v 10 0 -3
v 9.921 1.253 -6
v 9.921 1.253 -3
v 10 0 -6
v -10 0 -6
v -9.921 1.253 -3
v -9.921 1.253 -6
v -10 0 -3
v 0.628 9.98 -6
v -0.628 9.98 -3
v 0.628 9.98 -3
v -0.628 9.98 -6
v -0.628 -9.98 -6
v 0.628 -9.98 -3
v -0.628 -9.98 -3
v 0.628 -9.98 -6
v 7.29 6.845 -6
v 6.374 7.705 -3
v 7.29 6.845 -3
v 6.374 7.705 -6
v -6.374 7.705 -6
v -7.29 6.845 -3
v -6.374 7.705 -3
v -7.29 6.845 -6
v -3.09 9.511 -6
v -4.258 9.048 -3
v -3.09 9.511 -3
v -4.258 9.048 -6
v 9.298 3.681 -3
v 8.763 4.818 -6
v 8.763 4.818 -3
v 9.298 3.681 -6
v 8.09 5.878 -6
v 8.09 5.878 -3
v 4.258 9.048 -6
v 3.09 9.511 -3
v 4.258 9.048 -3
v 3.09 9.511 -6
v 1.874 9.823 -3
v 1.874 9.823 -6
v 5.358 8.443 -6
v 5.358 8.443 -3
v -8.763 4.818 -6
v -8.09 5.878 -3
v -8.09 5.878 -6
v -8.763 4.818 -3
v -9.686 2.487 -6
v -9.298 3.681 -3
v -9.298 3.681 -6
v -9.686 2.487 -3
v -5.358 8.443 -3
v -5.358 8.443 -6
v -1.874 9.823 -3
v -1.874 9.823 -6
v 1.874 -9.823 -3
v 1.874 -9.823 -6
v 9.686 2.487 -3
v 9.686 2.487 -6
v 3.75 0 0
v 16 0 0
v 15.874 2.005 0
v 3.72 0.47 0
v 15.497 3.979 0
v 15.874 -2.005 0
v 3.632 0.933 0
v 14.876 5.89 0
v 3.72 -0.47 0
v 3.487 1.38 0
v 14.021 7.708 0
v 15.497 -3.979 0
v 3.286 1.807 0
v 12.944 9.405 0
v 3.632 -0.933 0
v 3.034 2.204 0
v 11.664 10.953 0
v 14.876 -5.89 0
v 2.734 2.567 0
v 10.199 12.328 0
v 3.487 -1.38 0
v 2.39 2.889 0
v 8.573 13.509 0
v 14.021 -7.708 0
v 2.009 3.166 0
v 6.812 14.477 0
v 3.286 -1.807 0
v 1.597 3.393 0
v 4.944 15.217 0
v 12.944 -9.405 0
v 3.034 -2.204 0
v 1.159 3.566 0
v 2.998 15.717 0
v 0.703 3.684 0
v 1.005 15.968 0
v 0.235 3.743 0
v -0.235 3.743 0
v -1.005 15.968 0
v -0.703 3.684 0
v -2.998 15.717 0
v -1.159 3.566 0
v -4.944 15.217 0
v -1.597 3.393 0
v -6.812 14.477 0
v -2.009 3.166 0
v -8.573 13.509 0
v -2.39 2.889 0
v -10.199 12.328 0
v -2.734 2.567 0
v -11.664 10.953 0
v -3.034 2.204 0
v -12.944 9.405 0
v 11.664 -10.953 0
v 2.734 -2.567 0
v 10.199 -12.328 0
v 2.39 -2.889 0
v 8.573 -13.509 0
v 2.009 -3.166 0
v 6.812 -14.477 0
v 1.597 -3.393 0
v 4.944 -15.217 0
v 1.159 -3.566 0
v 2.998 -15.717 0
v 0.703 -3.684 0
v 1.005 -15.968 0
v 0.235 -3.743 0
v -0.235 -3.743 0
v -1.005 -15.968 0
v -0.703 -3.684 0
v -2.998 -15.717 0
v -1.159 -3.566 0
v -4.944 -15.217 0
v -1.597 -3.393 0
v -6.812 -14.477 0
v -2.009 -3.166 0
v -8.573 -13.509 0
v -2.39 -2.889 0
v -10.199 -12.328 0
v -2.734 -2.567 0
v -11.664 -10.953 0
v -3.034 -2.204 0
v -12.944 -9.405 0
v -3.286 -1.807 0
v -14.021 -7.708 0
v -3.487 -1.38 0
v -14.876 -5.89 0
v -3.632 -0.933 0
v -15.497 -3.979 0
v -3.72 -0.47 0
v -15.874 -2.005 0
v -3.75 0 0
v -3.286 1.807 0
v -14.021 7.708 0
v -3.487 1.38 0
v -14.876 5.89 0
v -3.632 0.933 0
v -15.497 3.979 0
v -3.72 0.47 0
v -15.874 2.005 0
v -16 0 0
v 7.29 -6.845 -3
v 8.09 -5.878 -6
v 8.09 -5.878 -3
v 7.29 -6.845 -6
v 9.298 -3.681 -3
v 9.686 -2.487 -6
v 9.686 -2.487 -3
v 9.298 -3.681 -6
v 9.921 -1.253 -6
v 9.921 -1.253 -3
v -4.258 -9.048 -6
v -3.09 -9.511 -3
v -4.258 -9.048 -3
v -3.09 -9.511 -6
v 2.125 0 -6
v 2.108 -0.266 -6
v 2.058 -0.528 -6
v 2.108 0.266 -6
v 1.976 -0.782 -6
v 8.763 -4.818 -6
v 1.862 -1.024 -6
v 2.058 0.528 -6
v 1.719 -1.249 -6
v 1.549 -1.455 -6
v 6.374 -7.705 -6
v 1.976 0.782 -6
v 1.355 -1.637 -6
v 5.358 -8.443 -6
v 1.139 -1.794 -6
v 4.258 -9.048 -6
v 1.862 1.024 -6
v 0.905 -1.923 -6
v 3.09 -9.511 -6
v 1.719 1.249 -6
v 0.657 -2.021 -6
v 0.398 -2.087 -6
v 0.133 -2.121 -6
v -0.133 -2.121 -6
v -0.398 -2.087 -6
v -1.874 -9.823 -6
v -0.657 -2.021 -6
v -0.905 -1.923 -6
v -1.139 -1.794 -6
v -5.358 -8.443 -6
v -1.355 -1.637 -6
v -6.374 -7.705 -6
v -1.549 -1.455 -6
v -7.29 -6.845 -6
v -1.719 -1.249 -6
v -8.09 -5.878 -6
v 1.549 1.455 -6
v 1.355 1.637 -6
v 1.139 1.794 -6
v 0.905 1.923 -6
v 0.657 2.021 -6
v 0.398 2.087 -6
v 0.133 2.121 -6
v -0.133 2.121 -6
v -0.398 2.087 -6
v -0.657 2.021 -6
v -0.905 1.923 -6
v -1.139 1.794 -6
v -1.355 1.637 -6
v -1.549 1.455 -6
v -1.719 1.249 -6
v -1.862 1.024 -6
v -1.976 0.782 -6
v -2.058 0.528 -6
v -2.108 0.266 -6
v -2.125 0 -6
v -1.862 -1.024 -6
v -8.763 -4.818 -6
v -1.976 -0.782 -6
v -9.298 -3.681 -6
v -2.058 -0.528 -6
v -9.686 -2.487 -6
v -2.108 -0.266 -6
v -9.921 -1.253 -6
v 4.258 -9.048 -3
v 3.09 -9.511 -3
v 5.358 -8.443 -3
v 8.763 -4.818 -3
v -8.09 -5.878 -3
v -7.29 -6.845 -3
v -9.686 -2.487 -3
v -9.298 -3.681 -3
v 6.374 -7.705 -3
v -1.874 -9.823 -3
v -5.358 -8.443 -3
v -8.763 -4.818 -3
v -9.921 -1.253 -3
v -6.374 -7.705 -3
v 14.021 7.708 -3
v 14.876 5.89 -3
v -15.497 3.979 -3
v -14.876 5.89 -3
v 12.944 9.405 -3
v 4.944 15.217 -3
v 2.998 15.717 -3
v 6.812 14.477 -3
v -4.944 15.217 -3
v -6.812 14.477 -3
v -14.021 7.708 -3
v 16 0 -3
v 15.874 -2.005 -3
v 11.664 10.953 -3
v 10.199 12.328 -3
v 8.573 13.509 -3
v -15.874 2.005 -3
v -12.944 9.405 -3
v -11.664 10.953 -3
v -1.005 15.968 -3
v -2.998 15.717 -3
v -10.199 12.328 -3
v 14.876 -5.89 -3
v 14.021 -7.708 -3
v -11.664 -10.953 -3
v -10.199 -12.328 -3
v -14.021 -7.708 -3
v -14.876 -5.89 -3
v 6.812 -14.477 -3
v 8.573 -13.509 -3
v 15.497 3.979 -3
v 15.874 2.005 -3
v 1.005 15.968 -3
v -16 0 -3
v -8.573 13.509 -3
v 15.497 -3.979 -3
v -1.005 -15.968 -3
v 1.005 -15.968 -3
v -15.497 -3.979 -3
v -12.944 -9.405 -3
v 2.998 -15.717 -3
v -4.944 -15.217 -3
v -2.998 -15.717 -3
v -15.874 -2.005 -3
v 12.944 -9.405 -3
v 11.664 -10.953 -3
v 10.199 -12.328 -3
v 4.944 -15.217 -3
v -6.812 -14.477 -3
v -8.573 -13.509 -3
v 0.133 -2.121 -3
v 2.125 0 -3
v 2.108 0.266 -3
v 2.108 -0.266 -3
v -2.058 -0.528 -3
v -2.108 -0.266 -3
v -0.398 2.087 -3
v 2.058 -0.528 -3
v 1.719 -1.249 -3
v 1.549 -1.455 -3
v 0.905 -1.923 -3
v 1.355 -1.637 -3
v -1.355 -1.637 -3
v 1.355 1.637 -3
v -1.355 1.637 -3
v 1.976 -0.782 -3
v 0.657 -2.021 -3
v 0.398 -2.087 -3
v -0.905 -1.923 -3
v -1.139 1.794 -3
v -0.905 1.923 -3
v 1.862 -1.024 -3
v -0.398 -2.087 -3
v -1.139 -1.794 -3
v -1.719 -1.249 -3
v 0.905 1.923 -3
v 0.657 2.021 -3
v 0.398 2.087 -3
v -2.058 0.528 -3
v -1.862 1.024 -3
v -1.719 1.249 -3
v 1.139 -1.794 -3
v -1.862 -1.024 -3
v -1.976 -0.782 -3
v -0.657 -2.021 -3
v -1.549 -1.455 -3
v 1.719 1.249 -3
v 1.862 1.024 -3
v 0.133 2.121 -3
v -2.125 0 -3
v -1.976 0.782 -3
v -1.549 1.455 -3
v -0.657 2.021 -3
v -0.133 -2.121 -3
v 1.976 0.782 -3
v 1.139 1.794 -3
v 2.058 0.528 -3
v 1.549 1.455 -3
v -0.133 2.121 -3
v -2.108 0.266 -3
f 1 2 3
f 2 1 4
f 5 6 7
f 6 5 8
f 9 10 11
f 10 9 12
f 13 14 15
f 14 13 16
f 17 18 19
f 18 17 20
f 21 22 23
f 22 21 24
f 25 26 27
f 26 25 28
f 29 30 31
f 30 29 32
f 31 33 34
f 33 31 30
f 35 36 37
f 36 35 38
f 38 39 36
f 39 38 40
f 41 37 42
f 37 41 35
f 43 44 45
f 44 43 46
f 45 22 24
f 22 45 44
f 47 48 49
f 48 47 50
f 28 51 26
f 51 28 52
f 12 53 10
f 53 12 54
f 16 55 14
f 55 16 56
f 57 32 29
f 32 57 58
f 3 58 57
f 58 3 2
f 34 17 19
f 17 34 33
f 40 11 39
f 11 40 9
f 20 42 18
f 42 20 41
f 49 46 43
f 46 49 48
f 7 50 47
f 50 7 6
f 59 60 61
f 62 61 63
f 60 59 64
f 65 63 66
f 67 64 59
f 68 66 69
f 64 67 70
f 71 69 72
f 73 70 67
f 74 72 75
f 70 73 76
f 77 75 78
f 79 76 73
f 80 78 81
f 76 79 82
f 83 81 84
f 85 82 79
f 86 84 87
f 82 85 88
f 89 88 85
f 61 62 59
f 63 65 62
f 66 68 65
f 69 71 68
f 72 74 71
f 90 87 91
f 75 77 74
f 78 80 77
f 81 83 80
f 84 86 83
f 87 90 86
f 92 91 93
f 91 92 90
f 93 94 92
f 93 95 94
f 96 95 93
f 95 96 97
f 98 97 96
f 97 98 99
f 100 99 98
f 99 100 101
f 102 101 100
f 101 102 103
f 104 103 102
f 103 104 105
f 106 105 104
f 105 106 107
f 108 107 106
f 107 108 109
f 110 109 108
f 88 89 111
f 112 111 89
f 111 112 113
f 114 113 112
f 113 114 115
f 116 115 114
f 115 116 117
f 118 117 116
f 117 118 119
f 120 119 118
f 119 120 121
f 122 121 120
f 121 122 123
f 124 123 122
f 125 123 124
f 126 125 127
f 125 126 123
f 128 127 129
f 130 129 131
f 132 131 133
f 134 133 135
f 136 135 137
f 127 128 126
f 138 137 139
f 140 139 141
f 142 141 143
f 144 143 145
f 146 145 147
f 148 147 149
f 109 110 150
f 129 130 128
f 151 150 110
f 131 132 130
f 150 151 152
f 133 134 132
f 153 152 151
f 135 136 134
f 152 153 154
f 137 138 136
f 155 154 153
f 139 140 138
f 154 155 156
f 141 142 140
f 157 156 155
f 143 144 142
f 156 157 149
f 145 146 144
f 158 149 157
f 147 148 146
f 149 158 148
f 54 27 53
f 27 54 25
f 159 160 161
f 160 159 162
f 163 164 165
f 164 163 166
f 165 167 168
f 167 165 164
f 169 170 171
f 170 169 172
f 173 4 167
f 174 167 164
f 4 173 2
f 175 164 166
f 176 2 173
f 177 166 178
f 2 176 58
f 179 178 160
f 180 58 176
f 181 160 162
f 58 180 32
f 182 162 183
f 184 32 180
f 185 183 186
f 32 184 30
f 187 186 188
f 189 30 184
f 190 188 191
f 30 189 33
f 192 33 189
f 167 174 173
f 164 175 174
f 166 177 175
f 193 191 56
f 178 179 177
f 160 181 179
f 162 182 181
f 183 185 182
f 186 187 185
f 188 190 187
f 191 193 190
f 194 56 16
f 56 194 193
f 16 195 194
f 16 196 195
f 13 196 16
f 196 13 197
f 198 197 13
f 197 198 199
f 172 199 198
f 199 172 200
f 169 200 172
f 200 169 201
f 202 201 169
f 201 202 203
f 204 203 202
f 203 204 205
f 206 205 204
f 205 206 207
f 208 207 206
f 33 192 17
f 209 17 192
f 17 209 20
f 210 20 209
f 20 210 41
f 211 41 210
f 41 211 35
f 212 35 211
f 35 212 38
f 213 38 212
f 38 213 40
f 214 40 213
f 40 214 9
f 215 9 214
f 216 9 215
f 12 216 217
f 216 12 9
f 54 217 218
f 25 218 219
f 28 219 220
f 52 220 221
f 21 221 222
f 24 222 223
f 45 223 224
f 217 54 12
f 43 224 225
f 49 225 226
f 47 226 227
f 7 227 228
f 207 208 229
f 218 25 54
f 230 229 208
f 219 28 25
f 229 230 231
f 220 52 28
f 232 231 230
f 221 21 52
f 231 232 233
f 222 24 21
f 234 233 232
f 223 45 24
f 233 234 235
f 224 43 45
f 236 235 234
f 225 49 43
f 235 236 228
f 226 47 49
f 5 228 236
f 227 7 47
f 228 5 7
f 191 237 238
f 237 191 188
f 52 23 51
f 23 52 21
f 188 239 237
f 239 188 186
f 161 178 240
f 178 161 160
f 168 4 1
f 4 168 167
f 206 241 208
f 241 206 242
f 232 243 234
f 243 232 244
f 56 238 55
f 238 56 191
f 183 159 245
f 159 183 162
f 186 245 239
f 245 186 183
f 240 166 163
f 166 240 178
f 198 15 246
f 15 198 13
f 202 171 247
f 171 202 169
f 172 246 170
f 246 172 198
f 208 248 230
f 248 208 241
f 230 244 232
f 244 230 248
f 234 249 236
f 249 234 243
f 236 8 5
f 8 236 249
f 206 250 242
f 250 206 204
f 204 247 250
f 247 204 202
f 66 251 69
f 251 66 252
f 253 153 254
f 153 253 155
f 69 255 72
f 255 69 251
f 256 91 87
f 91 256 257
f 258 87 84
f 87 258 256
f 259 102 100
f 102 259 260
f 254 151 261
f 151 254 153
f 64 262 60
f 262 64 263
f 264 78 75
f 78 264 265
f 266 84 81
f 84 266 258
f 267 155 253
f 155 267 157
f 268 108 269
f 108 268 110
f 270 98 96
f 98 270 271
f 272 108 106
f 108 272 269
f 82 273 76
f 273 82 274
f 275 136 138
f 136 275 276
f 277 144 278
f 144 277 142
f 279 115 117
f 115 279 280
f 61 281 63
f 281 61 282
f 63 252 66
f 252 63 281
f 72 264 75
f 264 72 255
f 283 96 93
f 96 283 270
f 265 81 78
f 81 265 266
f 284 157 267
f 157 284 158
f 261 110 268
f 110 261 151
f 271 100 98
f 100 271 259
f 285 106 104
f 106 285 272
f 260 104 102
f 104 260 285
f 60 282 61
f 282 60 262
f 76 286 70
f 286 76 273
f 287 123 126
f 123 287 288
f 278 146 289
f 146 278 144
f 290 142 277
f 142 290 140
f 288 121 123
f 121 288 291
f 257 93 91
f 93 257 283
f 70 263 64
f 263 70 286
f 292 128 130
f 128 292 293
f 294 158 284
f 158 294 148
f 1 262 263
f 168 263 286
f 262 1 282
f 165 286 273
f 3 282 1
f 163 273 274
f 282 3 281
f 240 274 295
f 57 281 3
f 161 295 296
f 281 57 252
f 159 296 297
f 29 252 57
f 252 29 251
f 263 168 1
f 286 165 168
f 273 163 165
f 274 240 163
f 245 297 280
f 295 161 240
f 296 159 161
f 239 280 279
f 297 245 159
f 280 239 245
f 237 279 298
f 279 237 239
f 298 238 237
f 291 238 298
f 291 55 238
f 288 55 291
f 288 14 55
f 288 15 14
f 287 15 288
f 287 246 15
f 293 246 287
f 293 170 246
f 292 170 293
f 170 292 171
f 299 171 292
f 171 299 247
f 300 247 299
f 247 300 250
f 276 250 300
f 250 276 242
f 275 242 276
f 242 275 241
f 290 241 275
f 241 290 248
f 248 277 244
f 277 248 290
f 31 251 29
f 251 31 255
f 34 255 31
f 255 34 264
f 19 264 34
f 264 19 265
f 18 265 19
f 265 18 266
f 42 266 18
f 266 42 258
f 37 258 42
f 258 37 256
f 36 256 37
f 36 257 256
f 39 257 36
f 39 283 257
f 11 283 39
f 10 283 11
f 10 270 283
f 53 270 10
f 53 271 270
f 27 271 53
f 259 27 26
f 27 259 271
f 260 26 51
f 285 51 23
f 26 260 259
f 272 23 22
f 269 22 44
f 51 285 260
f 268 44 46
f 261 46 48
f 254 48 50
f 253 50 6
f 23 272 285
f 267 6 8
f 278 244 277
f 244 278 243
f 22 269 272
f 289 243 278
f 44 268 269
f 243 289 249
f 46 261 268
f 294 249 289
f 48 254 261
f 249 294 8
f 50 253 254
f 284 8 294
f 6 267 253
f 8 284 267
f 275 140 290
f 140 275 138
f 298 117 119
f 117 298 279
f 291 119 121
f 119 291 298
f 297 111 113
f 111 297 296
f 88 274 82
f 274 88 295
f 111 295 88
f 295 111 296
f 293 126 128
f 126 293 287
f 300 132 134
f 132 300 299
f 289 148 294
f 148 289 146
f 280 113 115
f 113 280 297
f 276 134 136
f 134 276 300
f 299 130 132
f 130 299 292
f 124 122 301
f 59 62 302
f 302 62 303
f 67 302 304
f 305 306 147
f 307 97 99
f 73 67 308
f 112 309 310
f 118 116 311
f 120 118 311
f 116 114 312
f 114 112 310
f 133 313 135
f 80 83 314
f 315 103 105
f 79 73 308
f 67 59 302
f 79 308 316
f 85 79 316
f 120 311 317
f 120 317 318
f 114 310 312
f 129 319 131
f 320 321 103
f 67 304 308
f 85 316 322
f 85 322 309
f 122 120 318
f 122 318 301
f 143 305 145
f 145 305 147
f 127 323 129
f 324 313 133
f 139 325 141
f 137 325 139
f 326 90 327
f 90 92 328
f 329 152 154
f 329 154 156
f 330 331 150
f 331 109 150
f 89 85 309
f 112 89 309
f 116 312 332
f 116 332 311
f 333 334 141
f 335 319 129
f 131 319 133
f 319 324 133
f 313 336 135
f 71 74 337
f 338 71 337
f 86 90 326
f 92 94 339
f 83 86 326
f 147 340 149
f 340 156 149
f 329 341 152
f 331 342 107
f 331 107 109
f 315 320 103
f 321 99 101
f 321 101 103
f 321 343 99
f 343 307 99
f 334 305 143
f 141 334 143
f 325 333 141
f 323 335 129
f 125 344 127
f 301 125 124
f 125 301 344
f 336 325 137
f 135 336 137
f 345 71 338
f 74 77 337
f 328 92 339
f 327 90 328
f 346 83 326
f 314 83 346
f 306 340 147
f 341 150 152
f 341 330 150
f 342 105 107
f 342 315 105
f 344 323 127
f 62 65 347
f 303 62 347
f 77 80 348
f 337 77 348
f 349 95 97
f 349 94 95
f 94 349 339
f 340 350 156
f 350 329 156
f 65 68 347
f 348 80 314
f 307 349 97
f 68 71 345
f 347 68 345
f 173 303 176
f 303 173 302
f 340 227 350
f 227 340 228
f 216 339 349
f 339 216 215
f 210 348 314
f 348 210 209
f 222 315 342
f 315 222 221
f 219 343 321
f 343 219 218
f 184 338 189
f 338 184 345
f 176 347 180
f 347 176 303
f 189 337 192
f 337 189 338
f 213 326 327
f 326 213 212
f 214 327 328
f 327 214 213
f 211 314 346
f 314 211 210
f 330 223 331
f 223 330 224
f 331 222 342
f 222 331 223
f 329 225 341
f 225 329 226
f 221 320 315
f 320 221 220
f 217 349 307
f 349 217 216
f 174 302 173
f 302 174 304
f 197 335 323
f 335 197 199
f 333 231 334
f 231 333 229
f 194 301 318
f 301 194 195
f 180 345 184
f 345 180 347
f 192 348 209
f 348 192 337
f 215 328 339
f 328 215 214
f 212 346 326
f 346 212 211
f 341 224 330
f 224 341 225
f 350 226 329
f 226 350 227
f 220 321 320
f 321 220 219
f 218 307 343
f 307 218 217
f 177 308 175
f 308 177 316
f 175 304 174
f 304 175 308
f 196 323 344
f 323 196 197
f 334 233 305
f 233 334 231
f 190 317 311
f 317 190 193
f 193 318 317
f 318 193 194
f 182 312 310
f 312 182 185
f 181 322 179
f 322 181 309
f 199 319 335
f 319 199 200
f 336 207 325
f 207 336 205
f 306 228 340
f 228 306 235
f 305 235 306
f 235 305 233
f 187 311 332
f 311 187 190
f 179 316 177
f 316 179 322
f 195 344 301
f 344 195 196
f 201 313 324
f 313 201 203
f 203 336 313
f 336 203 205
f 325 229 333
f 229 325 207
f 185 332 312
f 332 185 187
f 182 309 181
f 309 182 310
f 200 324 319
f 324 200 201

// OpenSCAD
$fn = 50;


difference() {
	union() {
		translate(v = [0, 0, -6.0000000000]) {
			cylinder(h = 6, r = 10.0000000000);
		}
		translate(v = [0, 0, -3.0000000000]) {
			cylinder(h = 3, r = 16.0000000000);
		}
	}
	union() {
		translate(v = [0, 0, 0]) {
			rotate(a = [0, 0, 0]) {
				difference() {
					union() {
						#translate(v = [0, 0, -6.0000000000]) {
							cylinder(h = 6, r = 2.0000000000);
						}
						#translate(v = [0, 0, -3]) {
							cylinder(h = 3, r = 10.0000000000, r1 = 2.1250000000, r2 = 3.7500000000);
						}
						#translate(v = [0, 0, -6.0000000000]) {
							cylinder(h = 6, r = 2.1250000000);
						}
						#translate(v = [0, 0, -6.0000000000]) {
							cylinder(h = 6, r = 2.0000000000);
						}
					}
					union();
				}
			}
		}
	}
}
